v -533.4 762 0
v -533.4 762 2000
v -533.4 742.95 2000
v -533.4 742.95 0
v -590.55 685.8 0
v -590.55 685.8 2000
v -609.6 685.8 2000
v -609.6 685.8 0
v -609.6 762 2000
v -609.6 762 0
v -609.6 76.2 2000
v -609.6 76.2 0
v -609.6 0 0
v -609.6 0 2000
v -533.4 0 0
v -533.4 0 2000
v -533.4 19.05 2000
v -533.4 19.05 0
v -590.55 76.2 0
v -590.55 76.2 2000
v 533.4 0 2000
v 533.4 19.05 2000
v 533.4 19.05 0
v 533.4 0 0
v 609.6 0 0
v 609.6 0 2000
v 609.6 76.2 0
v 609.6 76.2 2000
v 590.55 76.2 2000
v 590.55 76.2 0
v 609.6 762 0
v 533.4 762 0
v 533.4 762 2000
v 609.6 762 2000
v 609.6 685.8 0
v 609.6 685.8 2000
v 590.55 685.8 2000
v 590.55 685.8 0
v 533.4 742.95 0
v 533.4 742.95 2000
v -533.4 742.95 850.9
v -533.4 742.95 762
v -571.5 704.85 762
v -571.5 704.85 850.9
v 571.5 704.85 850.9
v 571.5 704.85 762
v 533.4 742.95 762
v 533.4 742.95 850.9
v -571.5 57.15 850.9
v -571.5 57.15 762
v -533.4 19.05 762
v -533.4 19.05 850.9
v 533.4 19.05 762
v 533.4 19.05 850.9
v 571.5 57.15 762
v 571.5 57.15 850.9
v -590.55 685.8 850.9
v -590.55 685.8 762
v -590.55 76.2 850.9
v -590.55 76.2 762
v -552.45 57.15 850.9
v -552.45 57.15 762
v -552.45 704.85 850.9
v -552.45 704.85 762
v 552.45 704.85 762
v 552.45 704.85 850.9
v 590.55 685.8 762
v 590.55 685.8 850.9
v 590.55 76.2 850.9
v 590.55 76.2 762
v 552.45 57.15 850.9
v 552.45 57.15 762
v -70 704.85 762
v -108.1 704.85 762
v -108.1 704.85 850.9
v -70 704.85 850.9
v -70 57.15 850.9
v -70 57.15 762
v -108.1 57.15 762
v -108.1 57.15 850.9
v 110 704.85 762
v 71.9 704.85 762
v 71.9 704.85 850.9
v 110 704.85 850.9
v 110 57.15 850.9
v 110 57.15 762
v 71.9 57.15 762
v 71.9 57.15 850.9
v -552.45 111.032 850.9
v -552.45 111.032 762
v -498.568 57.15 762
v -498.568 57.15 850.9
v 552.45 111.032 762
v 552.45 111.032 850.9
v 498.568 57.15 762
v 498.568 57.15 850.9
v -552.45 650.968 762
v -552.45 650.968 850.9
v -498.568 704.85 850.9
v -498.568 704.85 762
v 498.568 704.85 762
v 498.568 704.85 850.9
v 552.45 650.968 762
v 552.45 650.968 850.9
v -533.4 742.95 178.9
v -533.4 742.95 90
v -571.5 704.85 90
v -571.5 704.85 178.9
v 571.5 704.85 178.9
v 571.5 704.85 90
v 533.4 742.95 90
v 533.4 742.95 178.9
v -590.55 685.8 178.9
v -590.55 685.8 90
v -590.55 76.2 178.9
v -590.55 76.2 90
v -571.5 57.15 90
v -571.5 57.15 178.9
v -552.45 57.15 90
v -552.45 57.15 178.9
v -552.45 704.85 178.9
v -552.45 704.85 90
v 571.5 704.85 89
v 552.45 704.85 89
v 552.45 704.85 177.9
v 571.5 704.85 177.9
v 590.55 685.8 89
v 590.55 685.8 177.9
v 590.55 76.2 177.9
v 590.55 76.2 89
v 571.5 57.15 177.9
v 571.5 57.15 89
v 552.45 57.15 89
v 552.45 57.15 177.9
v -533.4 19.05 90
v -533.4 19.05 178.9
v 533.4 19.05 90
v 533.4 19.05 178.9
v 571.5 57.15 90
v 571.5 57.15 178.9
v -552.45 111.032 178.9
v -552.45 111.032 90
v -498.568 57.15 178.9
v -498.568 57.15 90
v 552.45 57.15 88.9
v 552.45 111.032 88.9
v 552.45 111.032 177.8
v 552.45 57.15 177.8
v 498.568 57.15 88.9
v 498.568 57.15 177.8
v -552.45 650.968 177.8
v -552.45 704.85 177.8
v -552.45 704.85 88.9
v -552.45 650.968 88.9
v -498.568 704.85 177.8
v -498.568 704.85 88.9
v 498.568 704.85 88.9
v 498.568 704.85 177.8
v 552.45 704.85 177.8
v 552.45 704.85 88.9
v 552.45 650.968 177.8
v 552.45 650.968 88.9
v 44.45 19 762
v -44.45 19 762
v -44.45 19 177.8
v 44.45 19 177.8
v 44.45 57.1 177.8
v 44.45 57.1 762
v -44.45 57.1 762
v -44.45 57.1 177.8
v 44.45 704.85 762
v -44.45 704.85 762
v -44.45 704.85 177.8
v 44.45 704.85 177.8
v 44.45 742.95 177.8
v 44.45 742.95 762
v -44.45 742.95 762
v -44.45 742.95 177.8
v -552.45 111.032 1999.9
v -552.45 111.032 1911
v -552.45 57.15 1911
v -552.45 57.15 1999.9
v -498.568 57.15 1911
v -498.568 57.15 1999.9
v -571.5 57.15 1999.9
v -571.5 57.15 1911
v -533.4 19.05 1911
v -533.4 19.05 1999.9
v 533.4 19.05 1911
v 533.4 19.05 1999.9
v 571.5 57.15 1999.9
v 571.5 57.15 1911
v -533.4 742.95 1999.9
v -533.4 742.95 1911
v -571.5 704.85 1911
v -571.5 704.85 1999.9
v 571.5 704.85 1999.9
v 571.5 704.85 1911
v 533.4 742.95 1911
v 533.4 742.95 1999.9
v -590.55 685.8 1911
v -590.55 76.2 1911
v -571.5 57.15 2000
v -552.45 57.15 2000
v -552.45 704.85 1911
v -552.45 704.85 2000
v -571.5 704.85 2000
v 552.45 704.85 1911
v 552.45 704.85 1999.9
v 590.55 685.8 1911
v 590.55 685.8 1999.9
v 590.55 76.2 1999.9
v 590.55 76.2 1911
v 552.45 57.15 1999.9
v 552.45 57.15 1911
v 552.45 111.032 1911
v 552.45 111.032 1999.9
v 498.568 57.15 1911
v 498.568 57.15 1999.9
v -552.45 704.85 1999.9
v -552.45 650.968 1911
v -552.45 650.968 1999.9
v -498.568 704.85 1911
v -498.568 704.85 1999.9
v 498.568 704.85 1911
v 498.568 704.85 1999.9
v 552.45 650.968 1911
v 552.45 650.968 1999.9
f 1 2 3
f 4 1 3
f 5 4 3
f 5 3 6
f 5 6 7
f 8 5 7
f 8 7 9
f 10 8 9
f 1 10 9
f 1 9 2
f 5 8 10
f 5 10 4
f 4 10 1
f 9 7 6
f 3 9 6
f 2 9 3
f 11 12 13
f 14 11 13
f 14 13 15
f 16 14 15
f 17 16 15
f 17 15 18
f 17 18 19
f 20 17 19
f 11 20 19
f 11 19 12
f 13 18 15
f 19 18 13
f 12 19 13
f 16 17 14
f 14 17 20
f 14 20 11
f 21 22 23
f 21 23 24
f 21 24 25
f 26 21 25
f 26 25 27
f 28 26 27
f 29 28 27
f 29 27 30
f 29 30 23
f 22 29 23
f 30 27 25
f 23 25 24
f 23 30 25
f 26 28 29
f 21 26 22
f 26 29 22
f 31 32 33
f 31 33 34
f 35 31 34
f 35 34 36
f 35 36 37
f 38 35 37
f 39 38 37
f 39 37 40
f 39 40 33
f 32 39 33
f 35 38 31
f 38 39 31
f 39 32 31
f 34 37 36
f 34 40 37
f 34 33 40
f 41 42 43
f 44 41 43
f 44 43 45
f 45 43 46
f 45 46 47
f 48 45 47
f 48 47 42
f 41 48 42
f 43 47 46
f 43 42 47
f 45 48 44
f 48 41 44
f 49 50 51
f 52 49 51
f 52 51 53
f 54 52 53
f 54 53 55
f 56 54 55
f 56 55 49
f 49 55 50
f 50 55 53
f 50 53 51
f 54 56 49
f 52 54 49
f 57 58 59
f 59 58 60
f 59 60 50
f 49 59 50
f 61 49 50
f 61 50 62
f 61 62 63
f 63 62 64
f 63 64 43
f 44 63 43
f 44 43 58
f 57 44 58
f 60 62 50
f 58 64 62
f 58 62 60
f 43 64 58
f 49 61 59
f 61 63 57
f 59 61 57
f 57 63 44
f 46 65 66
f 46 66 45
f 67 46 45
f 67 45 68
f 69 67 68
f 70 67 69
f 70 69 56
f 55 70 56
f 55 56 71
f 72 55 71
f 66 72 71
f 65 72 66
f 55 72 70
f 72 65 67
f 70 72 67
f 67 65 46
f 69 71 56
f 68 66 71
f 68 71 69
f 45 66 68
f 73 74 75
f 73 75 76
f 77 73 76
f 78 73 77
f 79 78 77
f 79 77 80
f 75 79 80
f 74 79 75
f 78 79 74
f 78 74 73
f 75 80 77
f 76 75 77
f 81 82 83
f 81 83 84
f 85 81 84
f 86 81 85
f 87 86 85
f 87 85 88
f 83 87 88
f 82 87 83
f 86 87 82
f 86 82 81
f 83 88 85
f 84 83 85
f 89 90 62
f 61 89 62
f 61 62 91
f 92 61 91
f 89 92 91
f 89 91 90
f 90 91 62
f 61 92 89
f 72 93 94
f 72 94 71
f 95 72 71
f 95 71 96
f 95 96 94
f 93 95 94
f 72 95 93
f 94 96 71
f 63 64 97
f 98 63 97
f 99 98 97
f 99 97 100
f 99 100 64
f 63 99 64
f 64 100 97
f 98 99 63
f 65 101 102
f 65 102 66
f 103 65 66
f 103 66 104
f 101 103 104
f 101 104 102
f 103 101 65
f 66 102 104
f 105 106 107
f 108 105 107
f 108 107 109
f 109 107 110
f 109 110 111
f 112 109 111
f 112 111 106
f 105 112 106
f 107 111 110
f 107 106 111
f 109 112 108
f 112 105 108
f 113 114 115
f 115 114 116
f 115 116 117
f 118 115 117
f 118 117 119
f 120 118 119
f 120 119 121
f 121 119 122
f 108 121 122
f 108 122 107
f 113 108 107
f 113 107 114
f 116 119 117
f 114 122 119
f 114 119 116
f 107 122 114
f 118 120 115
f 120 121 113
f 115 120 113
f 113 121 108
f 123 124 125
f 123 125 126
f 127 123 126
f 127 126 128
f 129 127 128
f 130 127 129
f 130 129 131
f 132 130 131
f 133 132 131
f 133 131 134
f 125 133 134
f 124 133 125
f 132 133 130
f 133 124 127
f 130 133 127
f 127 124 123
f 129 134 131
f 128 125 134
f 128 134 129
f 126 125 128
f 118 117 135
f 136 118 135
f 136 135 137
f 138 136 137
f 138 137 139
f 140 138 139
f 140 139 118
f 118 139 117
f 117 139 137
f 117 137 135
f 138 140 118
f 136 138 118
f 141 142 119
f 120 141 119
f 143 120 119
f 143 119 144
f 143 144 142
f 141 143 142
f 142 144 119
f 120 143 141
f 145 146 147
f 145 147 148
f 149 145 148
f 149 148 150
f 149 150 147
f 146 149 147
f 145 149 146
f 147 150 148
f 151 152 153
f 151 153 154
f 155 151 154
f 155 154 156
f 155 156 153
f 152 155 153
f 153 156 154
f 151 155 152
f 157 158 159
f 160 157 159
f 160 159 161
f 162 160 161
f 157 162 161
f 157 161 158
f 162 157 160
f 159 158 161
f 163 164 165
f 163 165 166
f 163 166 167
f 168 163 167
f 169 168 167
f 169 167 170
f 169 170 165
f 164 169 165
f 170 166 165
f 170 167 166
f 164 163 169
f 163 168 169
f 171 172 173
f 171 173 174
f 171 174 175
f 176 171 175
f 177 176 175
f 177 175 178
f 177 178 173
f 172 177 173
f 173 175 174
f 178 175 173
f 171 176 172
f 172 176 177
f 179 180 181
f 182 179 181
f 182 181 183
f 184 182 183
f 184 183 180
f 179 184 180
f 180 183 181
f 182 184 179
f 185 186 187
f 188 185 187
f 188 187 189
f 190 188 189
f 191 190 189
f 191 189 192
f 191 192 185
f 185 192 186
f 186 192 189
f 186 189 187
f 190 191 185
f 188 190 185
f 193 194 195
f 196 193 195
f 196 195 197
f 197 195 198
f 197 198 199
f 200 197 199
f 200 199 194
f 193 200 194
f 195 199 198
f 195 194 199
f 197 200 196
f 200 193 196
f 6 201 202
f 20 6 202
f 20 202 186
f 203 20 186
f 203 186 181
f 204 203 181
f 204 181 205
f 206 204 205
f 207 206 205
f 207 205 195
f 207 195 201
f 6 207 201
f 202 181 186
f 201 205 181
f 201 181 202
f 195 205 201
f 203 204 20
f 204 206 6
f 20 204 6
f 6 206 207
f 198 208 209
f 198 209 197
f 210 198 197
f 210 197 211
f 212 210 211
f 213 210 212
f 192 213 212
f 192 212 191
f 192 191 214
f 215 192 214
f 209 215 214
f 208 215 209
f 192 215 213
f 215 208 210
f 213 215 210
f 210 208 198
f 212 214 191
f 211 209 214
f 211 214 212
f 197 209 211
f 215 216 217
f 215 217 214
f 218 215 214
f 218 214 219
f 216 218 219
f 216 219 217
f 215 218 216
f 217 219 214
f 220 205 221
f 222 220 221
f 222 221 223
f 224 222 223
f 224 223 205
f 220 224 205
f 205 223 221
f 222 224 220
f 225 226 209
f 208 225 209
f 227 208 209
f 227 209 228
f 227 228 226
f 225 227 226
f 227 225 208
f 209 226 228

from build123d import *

# Parameters (mm, degrees)
PAD002_DEPTH = 2000
PAD003_DEPTH = 2000
PAD004_DEPTH = 2000
PAD005_DEPTH = 2000
PAD009_DEPTH = 88.9
PAD010_DEPTH = 88.9
PAD013_DEPTH = 88.9
PAD015_DEPTH = 88.9
PAD018_DEPTH = 88.9
PAD020_DEPTH = 88.9
PAD021_DEPTH = 88.9
SKETCH_W     = 88.9
SKETCH_H     = 38.1
PAD_DEPTH    = 584.2
SKETCH021_W  = 88.9
SKETCH021_H  = 38.1
PAD022_DEPTH = 584.2
PAD023_DEPTH = 88.9
SKETCH025_W  = 38.1
SKETCH025_H  = 647.7
PAD026_DEPTH = 88.9
SKETCH026_W  = 38.1
SKETCH026_H  = 647.7
PAD027_DEPTH = 88.9
PAD029_DEPTH = 88.9
PAD030_DEPTH = 88.9
PAD031_DEPTH = 88.9
PAD032_DEPTH = 88.9
PAD033_DEPTH = 88.9
PAD034_DEPTH = 89
PAD035_DEPTH = 88.9
PAD037_DEPTH = 88.9
PAD038_DEPTH = 88.9
PAD039_DEPTH = 88.9
PAD041_DEPTH = 88.9
PAD042_DEPTH = 88.9
PAD043_DEPTH = 88.9
PAD045_DEPTH = 88.9
PAD046_DEPTH = 88.9
PAD047_DEPTH = 88.9


with BuildPart() as back_left_corner:
    # Sketch002 → Pad002 (new body)
    with BuildSketch(Plane.XY):
        Polygon((-533.4, 762), (-533.4, 742.95), (-590.55, 685.8), (-609.6, 685.8), (-609.6, 762), align=None)
    extrude(amount=PAD002_DEPTH)


with BuildPart() as front_left_corner:
    # Sketch003 → Pad003 (new body)
    with BuildSketch(Plane.XY):
        Polygon((-609.6, 76.2), (-609.6, 0), (-533.4, 0), (-533.4, 19.05), (-590.55, 76.2), align=None)
    extrude(amount=PAD003_DEPTH)


with BuildPart() as front_right_corner:
    # Sketch004 → Pad004 (new body)
    with BuildSketch(Plane.XY):
        Polygon((533.4, 19.05), (533.4, 0), (609.6, 0), (609.6, 76.2), (590.55, 76.2), align=None)
    extrude(amount=PAD004_DEPTH)


with BuildPart() as back_right_corner:
    # Sketch005 → Pad005 (new body)
    with BuildSketch(Plane.XY):
        Polygon((533.4, 762), (609.6, 762), (609.6, 685.8), (590.55, 685.8), (533.4, 742.95), align=None)
    extrude(amount=PAD005_DEPTH)


with BuildPart() as mid_back:
    # Sketch009 → Pad009 (new body)
    with BuildSketch(Plane.XY.offset(762)):
        Polygon((-533.4, 742.95), (-571.5, 704.85), (571.5, 704.85), (533.4, 742.95), align=None)
    extrude(amount=PAD009_DEPTH)


with BuildPart() as mid_front:
    # Sketch010 → Pad010 (new body)
    with BuildSketch(Plane.XY.offset(762)):
        Polygon((-571.5, 57.15), (-533.4, 19.05), (533.4, 19.05), (571.5, 57.15), align=None)
    extrude(amount=PAD010_DEPTH)


with BuildPart() as mid_left_side:
    # Sketch012 → Pad013 (new body)
    with BuildSketch(Plane.XY.offset(762)):
        Polygon((-590.55, 685.8), (-590.55, 76.2), (-571.5, 57.15), (-552.45, 57.15), (-552.45, 704.85), (-571.5, 704.85), align=None)
    extrude(amount=PAD013_DEPTH)


with BuildPart() as mid_right_side:
    # Sketch014 → Pad015 (new body)
    with BuildSketch(Plane.XY.offset(762)):
        Polygon((552.45, 704.85), (571.5, 704.85), (590.55, 685.8), (590.55, 76.2), (571.5, 57.15), (552.45, 57.15), align=None)
    extrude(amount=PAD015_DEPTH)


with BuildPart() as lower_back:
    # Sketch017 → Pad018 (new body)
    with BuildSketch(Plane.XY.offset(90)):
        Polygon((-533.4, 742.95), (-571.5, 704.85), (571.5, 704.85), (533.4, 742.95), align=None)
    extrude(amount=PAD018_DEPTH)


with BuildPart() as lower_left_side:
    # Sketch019 → Pad020 (new body)
    with BuildSketch(Plane.XY.offset(90)):
        Polygon((-590.55, 685.8), (-590.55, 76.2), (-571.5, 57.15), (-552.45, 57.15), (-552.45, 704.85), (-571.5, 704.85), align=None)
    extrude(amount=PAD020_DEPTH)


with BuildPart() as lower_right_side:
    # Sketch020 → Pad021 (new body)
    with BuildSketch(Plane.XY.offset(89)):
        Polygon((552.45, 704.85), (571.5, 704.85), (590.55, 685.8), (590.55, 76.2), (571.5, 57.15), (552.45, 57.15), align=None)
    extrude(amount=PAD021_DEPTH)


with BuildPart() as front_brace:
    # Sketch → Pad (new body)
    with BuildSketch(Plane.XY.offset(177.8)):
        with Locations((0, 38.05)):
            Rectangle(SKETCH_W, SKETCH_H)
    extrude(amount=PAD_DEPTH)


with BuildPart() as back_brace:
    # Sketch021 → Pad022 (new body)
    with BuildSketch(Plane.XY.offset(177.8)):
        with Locations((0, 723.9)):
            Rectangle(SKETCH021_W, SKETCH021_H)
    extrude(amount=PAD022_DEPTH)


with BuildPart() as lower_front:
    # Sketch022 → Pad023 (new body)
    with BuildSketch(Plane.XY.offset(90)):
        Polygon((-571.5, 57.15), (-533.4, 19.05), (533.4, 19.05), (571.5, 57.15), align=None)
    extrude(amount=PAD023_DEPTH)


with BuildPart() as left_mill_mount:
    # Sketch025 → Pad026 (new body)
    with BuildSketch(Plane.XY.offset(762)):
        with Locations((-89.05, 381)):
            Rectangle(SKETCH025_W, SKETCH025_H)
    extrude(amount=PAD026_DEPTH)


with BuildPart() as right_mill_mount:
    # Sketch026 → Pad027 (new body)
    with BuildSketch(Plane.XY.offset(762)):
        with Locations((90.95, 381)):
            Rectangle(SKETCH026_W, SKETCH026_H)
    extrude(amount=PAD027_DEPTH)


with BuildPart() as left_front_corner_brace:
    # Sketch028 → Pad029 (new body)
    with BuildSketch(Plane.XY.offset(90)):
        Polygon((-552.45, 111.031537), (-552.45, 57.15), (-498.568463, 57.15), align=None)
    extrude(amount=PAD029_DEPTH)


with BuildPart() as mid_left_front_corner_brace:
    # Sketch029 → Pad030 (new body)
    with BuildSketch(Plane.XY.offset(762)):
        Polygon((-552.45, 111.031537), (-552.45, 57.15), (-498.568463, 57.15), align=None)
    extrude(amount=PAD030_DEPTH)


with BuildPart() as top_left_front_corner_brace:
    # Sketch030 → Pad031 (new body)
    with BuildSketch(Plane.XY.offset(1911)):
        Polygon((-552.45, 111.031537), (-552.45, 57.15), (-498.568463, 57.15), align=None)
    extrude(amount=PAD031_DEPTH)


with BuildPart() as top_front:
    # Sketch031 → Pad032 (new body)
    with BuildSketch(Plane.XY.offset(1911)):
        Polygon((-571.5, 57.15), (-533.4, 19.05), (533.4, 19.05), (571.5, 57.15), align=None)
    extrude(amount=PAD032_DEPTH)


with BuildPart() as top_back:
    # Sketch032 → Pad033 (new body)
    with BuildSketch(Plane.XY.offset(1911)):
        Polygon((-533.4, 742.95), (-571.5, 704.85), (571.5, 704.85), (533.4, 742.95), align=None)
    extrude(amount=PAD033_DEPTH)


with BuildPart() as top_left:
    # Sketch033 → Pad034 (new body)
    with BuildSketch(Plane.XY.offset(1911)):
        Polygon((-590.55, 685.8), (-590.55, 76.2), (-571.5, 57.15), (-552.45, 57.15), (-552.45, 704.85), (-571.5, 704.85), align=None)
    extrude(amount=PAD034_DEPTH)


with BuildPart() as top_right_side:
    # Sketch034 → Pad035 (new body)
    with BuildSketch(Plane.XY.offset(1911)):
        Polygon((552.45, 704.85), (571.5, 704.85), (590.55, 685.8), (590.55, 76.2), (571.5, 57.15), (552.45, 57.15), align=None)
    extrude(amount=PAD035_DEPTH)


with BuildPart() as top_right_corner_brace:
    # Sketch036 → Pad037 (new body)
    with BuildSketch(Plane.XY.offset(1911)):
        Polygon((552.45, 111.031537), (552.45, 57.15), (498.568463, 57.15), align=None)
    extrude(amount=PAD037_DEPTH)


with BuildPart() as mid_right_front_corner_brace:
    # Sketch037 → Pad038 (new body)
    with BuildSketch(Plane.XY.offset(762)):
        Polygon((552.45, 111.031537), (552.45, 57.15), (498.568463, 57.15), align=None)
    extrude(amount=PAD038_DEPTH)


with BuildPart() as lower_right_front_corner_brace:
    # Sketch038 → Pad039 (new body)
    with BuildSketch(Plane.XY.offset(88.9)):
        Polygon((552.45, 111.031537), (552.45, 57.15), (498.568463, 57.15), align=None)
    extrude(amount=PAD039_DEPTH)


with BuildPart() as lower_back_left_corner_brace:
    # Sketch040 → Pad041 (new body)
    with BuildSketch(Plane.XY.offset(88.9)):
        Polygon((-552.45, 704.85), (-552.45, 650.968463), (-498.568463, 704.85), align=None)
    extrude(amount=PAD041_DEPTH)


with BuildPart() as mid_back_left_corner_brace:
    # Sketch041 → Pad042 (new body)
    with BuildSketch(Plane.XY.offset(762)):
        Polygon((-552.45, 704.85), (-552.45, 650.968463), (-498.568463, 704.85), align=None)
    extrude(amount=PAD042_DEPTH)


with BuildPart() as top_back_left_corner_brace:
    # Sketch042 → Pad043 (new body)
    with BuildSketch(Plane.XY.offset(1911)):
        Polygon((-552.45, 704.85), (-552.45, 650.968463), (-498.568463, 704.85), align=None)
    extrude(amount=PAD043_DEPTH)


with BuildPart() as lower_back_right_corner_brace:
    # Sketch044 → Pad045 (new body)
    with BuildSketch(Plane.XY.offset(88.9)):
        Polygon((498.568463, 704.85), (552.45, 704.85), (552.45, 650.968463), align=None)
    extrude(amount=PAD045_DEPTH)


with BuildPart() as mid_back_right_corner_brace:
    # Sketch045 → Pad046 (new body)
    with BuildSketch(Plane.XY.offset(762)):
        Polygon((498.568463, 704.85), (552.45, 704.85), (552.45, 650.968463), align=None)
    extrude(amount=PAD046_DEPTH)


with BuildPart() as top_back_right_corner_brace:
    # Sketch046 → Pad047 (new body)
    with BuildSketch(Plane.XY.offset(1911)):
        Polygon((498.568463, 704.85), (552.45, 704.85), (552.45, 650.968463), align=None)
    extrude(amount=PAD047_DEPTH)


solid = Compound([back_left_corner.part, front_left_corner.part, front_right_corner.part, back_right_corner.part, mid_back.part, mid_front.part, mid_left_side.part, mid_right_side.part, lower_back.part, lower_left_side.part, lower_right_side.part, front_brace.part, back_brace.part, lower_front.part, left_mill_mount.part, right_mill_mount.part, left_front_corner_brace.part, mid_left_front_corner_brace.part, top_left_front_corner_brace.part, top_front.part, top_back.part, top_left.part, top_right_side.part, top_right_corner_brace.part, mid_right_front_corner_brace.part, lower_right_front_corner_brace.part, lower_back_left_corner_brace.part, mid_back_left_corner_brace.part, top_back_left_corner_brace.part, lower_back_right_corner_brace.part, mid_back_right_corner_brace.part, top_back_right_corner_brace.part])
